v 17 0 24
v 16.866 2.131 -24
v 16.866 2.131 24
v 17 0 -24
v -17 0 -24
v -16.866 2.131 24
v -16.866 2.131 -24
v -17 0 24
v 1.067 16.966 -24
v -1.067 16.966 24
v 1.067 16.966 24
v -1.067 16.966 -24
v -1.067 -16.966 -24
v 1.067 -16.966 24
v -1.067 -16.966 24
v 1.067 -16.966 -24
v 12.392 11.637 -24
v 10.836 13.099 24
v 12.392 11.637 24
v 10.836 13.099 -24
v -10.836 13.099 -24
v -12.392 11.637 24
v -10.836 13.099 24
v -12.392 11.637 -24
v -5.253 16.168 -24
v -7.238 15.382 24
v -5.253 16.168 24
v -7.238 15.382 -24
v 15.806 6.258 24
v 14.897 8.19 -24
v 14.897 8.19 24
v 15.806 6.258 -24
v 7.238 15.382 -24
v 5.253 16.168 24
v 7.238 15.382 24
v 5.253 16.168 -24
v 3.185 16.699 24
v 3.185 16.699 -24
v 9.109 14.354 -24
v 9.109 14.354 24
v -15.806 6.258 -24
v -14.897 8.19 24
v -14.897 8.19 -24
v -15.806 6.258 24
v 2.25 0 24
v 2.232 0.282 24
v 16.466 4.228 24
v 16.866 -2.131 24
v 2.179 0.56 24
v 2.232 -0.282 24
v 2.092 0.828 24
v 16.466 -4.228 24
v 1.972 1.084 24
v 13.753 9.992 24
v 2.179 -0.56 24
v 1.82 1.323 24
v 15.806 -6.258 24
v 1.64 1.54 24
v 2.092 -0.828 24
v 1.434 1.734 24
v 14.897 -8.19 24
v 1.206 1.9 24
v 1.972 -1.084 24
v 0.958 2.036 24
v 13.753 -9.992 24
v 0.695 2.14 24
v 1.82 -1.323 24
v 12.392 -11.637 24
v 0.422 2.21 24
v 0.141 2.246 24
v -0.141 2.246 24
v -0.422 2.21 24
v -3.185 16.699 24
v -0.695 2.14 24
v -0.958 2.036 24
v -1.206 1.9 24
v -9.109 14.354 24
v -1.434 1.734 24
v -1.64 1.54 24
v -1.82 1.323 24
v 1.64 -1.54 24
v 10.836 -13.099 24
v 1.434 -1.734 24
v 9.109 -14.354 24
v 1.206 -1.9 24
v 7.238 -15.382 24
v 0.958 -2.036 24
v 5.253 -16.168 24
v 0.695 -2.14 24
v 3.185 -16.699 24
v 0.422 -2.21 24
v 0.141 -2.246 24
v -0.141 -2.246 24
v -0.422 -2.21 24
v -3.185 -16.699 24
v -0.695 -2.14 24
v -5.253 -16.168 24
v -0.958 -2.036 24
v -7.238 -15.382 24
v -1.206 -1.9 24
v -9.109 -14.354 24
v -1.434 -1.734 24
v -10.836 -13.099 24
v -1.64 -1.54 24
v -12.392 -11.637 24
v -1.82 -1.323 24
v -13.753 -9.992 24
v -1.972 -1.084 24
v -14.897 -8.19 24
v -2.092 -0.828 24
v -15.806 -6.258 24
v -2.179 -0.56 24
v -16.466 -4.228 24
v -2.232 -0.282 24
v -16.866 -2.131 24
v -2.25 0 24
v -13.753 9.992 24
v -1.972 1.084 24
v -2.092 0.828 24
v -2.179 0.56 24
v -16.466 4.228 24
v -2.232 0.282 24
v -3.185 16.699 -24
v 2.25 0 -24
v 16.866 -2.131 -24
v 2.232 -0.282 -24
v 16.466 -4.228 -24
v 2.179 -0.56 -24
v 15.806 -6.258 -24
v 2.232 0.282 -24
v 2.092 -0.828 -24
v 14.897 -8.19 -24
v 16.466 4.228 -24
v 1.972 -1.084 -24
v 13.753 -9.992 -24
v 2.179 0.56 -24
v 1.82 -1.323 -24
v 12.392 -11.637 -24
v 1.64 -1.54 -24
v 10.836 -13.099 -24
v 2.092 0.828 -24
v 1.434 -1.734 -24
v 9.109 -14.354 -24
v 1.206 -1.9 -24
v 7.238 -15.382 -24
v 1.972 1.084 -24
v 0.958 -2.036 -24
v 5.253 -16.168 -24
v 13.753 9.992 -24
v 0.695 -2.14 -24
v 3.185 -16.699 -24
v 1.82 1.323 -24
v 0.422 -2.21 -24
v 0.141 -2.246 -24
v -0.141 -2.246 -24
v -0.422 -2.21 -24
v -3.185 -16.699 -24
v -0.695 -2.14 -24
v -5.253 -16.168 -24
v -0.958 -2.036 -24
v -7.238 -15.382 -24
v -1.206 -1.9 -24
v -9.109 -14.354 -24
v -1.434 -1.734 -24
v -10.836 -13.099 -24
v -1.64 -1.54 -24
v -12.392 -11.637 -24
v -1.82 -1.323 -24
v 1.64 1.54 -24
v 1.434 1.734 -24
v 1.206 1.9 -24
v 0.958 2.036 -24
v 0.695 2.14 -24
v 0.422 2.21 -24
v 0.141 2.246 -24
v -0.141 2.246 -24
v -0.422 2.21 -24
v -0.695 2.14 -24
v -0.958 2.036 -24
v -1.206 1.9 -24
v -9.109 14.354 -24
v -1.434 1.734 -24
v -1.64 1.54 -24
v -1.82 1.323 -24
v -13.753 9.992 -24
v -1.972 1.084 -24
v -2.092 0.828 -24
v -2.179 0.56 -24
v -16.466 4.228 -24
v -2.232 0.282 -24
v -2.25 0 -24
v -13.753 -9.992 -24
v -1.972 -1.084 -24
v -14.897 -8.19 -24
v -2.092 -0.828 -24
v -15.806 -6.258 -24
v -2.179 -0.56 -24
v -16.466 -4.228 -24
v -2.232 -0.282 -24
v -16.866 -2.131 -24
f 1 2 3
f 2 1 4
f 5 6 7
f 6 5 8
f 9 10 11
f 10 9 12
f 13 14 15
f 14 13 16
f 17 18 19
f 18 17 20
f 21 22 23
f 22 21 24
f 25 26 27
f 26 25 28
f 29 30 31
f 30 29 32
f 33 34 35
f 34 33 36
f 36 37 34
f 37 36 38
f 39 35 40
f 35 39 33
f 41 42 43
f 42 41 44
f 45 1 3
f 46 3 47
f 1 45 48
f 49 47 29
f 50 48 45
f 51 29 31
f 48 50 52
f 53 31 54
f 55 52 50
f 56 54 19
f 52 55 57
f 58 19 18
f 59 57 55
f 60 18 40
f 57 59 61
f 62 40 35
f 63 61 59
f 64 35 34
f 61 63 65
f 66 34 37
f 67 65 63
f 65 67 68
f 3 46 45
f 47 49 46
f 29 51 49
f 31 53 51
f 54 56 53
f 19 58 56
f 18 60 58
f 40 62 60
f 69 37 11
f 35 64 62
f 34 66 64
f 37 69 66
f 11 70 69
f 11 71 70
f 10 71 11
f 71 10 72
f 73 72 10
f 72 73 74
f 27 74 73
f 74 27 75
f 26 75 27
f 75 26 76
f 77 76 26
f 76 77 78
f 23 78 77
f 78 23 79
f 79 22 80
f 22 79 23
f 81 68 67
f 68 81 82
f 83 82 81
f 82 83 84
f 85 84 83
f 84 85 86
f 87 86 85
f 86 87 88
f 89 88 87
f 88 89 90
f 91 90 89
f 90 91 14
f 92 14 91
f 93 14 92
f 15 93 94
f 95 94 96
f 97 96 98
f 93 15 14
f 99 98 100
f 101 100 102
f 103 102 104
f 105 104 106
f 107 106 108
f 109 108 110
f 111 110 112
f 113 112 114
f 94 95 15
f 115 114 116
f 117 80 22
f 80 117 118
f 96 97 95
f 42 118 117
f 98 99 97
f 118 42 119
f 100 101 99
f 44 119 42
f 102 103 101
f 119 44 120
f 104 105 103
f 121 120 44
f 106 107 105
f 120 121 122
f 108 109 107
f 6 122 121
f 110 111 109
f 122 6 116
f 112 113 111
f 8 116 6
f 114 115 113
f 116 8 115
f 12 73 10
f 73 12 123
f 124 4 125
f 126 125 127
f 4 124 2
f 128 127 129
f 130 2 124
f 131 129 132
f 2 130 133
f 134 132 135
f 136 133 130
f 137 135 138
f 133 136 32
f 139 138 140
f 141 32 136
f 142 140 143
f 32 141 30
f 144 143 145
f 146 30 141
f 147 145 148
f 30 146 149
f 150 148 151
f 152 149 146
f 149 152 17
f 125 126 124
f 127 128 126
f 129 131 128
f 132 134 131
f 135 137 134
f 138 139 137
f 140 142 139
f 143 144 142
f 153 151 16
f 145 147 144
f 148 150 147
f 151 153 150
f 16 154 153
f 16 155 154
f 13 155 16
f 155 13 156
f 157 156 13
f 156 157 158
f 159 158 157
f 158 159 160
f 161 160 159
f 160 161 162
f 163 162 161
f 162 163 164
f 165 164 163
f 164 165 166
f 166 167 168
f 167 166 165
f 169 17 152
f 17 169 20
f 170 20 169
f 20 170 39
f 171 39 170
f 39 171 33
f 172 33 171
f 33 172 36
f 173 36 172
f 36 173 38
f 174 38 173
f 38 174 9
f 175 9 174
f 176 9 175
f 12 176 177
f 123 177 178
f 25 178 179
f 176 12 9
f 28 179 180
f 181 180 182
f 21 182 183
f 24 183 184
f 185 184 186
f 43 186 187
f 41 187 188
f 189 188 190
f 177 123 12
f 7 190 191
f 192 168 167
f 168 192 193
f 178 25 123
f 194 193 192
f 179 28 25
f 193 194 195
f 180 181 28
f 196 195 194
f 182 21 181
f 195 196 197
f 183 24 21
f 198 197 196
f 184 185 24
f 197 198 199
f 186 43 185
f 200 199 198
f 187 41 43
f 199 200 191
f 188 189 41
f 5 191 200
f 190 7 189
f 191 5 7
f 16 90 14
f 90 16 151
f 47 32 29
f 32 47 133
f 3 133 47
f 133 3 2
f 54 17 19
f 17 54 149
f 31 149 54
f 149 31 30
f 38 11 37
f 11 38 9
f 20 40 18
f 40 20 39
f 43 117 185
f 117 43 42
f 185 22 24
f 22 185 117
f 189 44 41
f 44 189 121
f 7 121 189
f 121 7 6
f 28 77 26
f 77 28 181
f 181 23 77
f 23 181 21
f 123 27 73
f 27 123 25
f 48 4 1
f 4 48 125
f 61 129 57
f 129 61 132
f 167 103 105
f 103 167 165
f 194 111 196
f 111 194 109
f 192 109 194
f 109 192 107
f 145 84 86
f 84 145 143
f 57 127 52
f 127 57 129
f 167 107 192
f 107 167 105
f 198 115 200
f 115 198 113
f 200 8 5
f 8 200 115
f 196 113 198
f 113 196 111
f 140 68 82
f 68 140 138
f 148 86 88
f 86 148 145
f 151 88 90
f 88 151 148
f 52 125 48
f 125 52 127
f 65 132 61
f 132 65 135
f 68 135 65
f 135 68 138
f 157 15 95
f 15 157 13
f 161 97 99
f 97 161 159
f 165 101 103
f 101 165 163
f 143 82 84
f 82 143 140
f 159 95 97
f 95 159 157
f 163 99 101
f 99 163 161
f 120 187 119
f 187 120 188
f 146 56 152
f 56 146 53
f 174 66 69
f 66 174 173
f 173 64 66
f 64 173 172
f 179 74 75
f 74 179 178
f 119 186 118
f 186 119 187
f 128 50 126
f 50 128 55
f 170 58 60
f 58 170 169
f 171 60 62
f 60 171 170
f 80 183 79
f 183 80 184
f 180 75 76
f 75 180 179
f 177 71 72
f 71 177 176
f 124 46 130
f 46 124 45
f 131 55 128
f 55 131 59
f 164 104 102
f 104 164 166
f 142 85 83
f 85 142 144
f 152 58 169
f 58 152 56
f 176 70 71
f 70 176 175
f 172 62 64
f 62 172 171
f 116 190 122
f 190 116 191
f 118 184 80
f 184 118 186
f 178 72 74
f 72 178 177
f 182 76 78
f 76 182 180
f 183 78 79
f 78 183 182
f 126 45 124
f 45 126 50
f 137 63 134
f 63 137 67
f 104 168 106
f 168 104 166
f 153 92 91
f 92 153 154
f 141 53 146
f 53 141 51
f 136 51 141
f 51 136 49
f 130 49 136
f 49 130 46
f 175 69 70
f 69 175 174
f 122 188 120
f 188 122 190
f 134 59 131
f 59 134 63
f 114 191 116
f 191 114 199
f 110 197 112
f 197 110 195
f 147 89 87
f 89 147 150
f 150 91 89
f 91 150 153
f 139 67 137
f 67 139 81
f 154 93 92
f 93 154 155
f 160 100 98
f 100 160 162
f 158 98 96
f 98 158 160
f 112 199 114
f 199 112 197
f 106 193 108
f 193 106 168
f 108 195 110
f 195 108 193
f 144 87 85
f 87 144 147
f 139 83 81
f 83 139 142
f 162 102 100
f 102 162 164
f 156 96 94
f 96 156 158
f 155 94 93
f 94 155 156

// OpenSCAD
$fn = 50;


difference() {
	union() {
		translate(v = [0, 0, -24.0000000000]) {
			cylinder(h = 48, r = 17.0000000000);
		}
	}
	union() {
		translate(v = [0, 0, -100.0000000000]) {
			cylinder(h = 200, r = 2.2500000000);
		}
	}
}
